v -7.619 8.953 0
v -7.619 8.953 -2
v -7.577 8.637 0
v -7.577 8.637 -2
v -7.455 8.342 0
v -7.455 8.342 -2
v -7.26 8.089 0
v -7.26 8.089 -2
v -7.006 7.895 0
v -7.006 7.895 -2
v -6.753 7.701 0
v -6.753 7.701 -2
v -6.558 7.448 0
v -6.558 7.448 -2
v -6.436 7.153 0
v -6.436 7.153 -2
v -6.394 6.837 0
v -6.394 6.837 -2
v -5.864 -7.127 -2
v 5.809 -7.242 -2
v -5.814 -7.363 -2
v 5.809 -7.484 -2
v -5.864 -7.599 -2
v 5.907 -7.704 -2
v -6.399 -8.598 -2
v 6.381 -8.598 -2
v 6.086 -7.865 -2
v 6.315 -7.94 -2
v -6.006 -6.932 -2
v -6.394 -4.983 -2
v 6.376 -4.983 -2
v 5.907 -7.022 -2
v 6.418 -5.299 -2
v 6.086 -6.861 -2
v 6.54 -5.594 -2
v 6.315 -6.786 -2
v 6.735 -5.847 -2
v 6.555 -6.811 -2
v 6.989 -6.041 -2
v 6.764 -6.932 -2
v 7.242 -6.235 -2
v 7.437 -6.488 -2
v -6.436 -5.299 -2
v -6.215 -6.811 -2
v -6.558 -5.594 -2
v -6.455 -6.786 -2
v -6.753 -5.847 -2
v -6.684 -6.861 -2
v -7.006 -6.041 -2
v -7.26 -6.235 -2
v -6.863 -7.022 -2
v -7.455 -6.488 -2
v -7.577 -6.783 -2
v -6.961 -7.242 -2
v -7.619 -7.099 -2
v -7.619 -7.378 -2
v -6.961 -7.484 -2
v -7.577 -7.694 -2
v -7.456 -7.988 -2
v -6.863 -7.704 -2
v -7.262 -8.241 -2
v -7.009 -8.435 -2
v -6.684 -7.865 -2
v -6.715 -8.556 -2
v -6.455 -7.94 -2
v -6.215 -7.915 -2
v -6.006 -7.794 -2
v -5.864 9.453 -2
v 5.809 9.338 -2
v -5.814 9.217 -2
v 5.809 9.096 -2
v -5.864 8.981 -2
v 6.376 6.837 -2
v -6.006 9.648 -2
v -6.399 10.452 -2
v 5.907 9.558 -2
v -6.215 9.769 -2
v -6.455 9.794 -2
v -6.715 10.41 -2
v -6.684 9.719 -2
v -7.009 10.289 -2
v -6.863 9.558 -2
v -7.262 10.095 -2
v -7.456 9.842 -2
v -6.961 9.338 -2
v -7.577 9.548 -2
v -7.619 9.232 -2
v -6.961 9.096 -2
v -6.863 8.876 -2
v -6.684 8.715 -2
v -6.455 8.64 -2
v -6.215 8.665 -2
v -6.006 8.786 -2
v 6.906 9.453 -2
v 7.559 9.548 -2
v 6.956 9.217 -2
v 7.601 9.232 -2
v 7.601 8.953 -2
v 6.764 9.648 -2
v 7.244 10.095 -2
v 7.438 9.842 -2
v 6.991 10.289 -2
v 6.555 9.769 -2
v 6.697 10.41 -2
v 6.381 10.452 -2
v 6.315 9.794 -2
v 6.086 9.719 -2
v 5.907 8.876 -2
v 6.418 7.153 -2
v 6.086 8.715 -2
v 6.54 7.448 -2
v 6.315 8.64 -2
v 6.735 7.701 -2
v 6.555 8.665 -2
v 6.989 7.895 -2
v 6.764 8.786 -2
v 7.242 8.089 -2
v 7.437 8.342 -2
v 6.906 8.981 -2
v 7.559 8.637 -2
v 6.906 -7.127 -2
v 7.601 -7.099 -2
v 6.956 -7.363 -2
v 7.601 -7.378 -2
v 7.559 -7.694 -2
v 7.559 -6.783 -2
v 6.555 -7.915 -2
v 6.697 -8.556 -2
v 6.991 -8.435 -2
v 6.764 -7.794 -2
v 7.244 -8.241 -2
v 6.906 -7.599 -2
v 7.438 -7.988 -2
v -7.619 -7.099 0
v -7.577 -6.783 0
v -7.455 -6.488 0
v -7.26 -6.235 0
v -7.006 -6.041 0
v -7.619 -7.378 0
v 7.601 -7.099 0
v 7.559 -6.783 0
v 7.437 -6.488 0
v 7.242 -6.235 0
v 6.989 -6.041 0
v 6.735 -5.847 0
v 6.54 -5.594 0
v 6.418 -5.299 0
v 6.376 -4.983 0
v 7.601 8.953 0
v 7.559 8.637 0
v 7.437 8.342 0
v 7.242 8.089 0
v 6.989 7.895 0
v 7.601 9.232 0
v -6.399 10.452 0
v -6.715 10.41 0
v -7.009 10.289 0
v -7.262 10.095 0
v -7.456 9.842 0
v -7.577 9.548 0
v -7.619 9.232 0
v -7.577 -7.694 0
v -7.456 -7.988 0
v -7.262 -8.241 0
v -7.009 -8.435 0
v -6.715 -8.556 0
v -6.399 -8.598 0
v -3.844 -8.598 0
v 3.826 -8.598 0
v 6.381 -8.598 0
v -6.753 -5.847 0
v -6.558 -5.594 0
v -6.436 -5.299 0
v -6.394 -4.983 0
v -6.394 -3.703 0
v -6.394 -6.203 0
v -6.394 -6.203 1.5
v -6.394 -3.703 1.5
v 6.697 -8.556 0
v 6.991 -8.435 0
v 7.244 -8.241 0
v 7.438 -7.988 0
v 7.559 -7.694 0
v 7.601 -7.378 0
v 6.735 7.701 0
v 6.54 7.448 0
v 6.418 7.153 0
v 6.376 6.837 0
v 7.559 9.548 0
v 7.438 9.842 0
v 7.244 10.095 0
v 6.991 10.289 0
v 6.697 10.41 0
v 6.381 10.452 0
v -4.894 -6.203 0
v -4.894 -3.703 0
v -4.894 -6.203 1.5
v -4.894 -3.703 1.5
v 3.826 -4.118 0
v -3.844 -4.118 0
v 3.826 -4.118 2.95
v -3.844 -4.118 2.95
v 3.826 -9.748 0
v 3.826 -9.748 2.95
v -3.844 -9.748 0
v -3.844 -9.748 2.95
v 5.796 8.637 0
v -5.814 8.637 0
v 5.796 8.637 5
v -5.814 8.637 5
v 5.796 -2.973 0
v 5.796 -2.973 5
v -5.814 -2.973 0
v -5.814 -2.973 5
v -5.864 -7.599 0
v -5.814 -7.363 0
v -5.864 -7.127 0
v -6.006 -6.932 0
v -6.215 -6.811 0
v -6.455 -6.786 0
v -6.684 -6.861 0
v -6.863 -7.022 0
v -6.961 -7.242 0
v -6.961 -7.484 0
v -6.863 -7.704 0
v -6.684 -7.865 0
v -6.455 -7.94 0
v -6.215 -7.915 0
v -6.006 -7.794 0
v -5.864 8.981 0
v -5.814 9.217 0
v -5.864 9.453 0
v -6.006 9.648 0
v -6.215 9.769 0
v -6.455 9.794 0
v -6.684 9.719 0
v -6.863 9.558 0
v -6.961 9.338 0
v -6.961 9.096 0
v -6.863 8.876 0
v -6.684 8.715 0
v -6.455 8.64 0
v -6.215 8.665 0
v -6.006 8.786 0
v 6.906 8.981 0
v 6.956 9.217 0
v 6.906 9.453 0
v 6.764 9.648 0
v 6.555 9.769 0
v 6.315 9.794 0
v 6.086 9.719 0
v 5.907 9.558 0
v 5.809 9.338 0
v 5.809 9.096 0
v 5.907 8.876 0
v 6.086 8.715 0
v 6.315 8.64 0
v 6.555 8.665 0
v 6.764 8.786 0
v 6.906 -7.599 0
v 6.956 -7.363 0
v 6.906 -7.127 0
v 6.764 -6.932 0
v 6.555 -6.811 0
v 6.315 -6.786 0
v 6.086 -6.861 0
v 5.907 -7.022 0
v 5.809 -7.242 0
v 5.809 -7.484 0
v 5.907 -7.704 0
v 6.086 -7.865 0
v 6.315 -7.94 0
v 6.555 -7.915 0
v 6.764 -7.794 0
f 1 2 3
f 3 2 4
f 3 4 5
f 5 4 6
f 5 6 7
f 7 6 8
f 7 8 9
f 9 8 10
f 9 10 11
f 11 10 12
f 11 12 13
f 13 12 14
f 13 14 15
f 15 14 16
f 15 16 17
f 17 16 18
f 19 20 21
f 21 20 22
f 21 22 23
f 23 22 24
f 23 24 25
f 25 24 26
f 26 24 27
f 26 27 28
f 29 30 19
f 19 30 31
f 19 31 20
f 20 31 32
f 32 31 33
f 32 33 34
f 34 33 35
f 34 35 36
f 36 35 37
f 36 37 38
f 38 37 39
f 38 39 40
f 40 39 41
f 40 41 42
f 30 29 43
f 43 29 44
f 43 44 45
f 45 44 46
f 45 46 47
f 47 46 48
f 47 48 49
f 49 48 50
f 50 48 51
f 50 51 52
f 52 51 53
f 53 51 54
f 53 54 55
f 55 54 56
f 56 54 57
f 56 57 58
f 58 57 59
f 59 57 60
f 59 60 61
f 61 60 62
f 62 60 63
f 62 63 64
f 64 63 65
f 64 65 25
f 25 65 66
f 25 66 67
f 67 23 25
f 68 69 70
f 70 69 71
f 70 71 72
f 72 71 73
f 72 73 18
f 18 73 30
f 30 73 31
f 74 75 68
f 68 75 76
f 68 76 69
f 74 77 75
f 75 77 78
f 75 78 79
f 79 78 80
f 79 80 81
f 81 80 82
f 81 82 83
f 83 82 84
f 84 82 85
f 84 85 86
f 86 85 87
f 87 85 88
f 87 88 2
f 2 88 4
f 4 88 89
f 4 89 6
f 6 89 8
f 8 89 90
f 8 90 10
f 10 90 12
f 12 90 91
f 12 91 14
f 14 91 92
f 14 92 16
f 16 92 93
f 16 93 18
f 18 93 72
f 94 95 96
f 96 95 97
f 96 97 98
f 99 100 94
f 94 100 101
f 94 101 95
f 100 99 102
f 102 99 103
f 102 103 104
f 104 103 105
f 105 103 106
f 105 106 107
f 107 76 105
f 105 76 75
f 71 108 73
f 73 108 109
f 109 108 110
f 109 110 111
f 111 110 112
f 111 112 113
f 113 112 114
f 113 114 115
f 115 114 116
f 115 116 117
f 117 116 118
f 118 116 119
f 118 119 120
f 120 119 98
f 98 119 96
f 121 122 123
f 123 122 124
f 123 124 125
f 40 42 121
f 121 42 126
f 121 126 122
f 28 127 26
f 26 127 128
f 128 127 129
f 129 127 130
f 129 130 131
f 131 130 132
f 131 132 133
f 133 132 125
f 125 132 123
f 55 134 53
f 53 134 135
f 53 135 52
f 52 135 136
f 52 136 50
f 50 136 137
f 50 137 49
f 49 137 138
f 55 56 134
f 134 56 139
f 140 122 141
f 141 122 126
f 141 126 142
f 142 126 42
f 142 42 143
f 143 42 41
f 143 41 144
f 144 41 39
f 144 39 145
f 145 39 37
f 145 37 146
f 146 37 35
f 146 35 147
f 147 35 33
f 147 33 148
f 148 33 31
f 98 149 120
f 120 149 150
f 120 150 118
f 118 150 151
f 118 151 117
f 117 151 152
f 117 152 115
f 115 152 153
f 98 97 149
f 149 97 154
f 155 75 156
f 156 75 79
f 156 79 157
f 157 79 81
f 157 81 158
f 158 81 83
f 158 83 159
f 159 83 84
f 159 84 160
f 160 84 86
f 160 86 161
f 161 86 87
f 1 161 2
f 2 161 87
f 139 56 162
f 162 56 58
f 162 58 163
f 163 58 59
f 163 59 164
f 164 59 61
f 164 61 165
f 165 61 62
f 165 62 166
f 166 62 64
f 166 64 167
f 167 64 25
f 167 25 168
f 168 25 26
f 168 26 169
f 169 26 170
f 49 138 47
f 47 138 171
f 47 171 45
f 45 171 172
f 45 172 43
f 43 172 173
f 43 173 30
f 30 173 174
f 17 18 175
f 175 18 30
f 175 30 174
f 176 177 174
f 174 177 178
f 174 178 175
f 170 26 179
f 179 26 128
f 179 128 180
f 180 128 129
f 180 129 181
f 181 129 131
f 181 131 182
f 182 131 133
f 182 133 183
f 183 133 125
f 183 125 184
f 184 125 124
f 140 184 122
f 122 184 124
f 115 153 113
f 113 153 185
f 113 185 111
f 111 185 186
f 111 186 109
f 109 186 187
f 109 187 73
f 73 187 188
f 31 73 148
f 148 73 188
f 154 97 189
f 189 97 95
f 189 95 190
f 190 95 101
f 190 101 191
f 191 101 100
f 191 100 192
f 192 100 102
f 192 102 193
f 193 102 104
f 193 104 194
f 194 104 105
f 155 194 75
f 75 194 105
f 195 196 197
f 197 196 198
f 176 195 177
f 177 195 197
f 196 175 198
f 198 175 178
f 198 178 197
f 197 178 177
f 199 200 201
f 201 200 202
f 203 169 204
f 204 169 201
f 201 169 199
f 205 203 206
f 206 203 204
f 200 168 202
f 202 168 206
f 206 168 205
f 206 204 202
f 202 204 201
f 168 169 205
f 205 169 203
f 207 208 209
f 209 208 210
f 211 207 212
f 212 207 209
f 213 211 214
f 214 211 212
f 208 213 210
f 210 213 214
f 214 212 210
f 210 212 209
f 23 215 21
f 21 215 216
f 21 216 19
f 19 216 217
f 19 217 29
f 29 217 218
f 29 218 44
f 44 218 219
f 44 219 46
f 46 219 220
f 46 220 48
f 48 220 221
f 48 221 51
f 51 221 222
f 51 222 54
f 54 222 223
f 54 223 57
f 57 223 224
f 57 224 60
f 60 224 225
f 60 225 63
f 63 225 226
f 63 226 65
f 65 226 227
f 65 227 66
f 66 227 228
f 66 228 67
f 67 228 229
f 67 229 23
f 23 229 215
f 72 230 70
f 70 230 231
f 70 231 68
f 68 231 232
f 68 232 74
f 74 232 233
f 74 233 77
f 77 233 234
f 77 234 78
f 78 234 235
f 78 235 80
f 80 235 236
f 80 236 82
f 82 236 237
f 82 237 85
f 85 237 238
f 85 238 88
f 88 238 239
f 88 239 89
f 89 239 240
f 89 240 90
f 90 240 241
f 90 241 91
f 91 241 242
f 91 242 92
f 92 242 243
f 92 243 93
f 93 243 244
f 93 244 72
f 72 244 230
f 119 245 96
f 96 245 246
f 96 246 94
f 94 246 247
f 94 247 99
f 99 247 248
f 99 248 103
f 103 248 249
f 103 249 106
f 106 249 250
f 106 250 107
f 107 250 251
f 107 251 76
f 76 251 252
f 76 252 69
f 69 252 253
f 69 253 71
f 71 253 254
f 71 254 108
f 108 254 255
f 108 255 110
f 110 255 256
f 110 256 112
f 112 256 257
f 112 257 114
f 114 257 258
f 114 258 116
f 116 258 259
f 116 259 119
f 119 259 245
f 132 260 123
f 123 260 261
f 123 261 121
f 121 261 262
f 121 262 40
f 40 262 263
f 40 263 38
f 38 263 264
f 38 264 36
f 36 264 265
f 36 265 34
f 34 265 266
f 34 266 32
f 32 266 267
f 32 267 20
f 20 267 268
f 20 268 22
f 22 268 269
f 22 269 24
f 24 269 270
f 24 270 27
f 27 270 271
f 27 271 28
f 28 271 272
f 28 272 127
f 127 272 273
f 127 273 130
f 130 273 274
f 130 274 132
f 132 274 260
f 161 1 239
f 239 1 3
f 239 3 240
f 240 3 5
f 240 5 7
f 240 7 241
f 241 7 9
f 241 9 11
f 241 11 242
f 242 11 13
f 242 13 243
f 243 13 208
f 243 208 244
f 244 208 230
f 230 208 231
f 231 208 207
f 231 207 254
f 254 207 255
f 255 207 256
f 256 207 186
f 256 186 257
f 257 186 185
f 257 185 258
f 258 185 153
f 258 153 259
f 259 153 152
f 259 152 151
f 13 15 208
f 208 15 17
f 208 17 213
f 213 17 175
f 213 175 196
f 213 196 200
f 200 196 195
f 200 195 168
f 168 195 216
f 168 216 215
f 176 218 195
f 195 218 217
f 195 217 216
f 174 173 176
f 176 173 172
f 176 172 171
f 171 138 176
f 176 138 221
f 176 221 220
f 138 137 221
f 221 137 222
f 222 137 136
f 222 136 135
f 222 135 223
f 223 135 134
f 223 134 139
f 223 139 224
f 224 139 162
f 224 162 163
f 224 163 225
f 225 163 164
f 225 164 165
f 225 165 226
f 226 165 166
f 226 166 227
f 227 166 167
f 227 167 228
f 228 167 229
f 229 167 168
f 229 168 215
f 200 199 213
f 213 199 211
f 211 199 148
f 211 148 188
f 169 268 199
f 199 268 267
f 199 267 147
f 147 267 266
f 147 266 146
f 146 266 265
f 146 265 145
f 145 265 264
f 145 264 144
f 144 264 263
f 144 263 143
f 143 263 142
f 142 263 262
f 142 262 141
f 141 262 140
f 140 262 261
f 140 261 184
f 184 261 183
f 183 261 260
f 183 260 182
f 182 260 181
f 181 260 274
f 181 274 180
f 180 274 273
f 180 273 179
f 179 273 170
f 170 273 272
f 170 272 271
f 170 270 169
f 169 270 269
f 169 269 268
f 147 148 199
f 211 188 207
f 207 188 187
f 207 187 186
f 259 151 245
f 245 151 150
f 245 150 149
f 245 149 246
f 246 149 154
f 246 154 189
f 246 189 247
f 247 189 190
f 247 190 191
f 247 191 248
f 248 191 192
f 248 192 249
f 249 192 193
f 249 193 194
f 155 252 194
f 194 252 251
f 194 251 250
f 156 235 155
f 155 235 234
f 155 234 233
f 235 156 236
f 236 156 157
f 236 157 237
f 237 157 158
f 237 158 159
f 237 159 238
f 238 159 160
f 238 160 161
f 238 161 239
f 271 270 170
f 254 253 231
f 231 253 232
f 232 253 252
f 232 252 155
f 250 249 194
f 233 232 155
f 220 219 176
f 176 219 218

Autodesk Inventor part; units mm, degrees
ref_plane "YZ Plane" through (0, 0, 0) normal (1, 0, 0) x (0, 1, 0)
ref_plane "XZ Plane" through (0, 0, 0) normal (0, 1, 0) x (-1, 0, 0)
ref_plane "XY Plane" through (0, 0, 0) normal (0, 0, 1) x (1, 0, 0)
sketch "Sketch1" plane through (0, 0, 0) normal (0, 0, 1) x (1, 0, 0)
  line L0 (-7.619, -8.598) -> (7.601, -8.598)
  line L1 (7.601, -8.598) -> (7.601, 10.452)
  line L2 (7.601, 10.452) -> (-7.619, 10.452)
  line L3 (-7.619, 10.452) -> (-7.619, -8.598)
  line L4 (-6.394, 9.217) -> (6.376, 9.217)
  line L5 (6.376, 9.217) -> (6.376, -7.363)
  line L6 (6.376, -7.363) -> (-6.394, -7.363)
  line L7 (-6.394, -7.363) -> (-6.394, 9.217)
  circle A0 centre (-6.394, 9.217) radius 0.58
  circle A1 centre (6.376, 9.217) radius 0.58
  circle A2 centre (6.376, -7.363) radius 0.58
  circle A3 centre (-6.394, -7.363) radius 0.58
  line L8 (-3.844, -9.748) -> (3.826, -9.748)
  line L9 (3.826, -9.748) -> (3.826, -8.598)
  line L10 (-3.844, -9.748) -> (-3.844, -8.598)
  line L11 (5.796, 8.637) -> (-5.814, 8.637)
  line L12 (-5.814, 8.637) -> (-5.814, -2.973)
  line L13 (-5.814, -2.973) -> (5.796, -2.973)
  line L14 (5.796, -2.973) -> (5.796, 8.637)
  line L15 (3.826, -9.748) -> (-3.844, -9.748)
  line L16 (-3.844, -9.748) -> (-3.844, -4.118)
  line L17 (-3.844, -4.118) -> (3.826, -4.118)
  line L18 (3.826, -4.118) -> (3.826, -9.748)
  line L19 (-6.394, -6.203) -> (-4.894, -6.203)
  line L20 (-4.894, -6.203) -> (-4.894, -3.703)
  line L21 (-4.894, -3.703) -> (-6.394, -3.703)
  line L22 (-6.394, -3.703) -> (-6.394, -6.203)
  line L23 (-7.619, 8.057) -> (-6.394, 8.057)
  line L24 (-6.394, 8.057) -> (-6.394, -6.783)
  line L25 (-7.619, -6.783) -> (-7.619, 8.057)
  line L26 (7.601, 8.637) -> (7.601, -6.783)
  line L27 (6.376, -6.783) -> (6.376, 8.637)
  line L28 (-6.394, 10.452) -> (-6.394, 9.797)
  line L29 (6.376, 10.452) -> (6.376, 9.797)
  line L30 (-7.619, -6.203) -> (-6.394, -6.203)
  line L31 (6.376, -6.203) -> (7.601, -6.203)
  line L32 (6.376, 8.057) -> (7.601, 8.057)
  point P0 (0, 0)
  point P1 (2.2173, 6.5337)
  point P2 (-0.009, -8.598)
  point P3 (-0.009, -9.748)
  point P4 (-6.394, -3.703)
  point P5 (-4.894, -4.953)
  point P6 (-5.644, -6.203)
  point P7 (-6.394, 8.057)
  point P8 (-7.0065, -6.783)
  point P9 (6.9885, 8.637)
  point P10 (-7.0065, -6.203)
  dimension "d16" = 1.16
  dimension "d17" = 1.16
  dimension "d0" = 15.22
  dimension "d1" = 19.05
  dimension "d14" = 12.77
  dimension "d15" = 16.58
  dimension "d18" = 1.16
  dimension "d19" = 1.16
  dimension "d23" = 1.235
  dimension "d24" = 1.225
  dimension "d47" = 1.15
  dimension "d55" = 5.63
  dimension "d60" = 1.5
  dimension "d61" = 2.5
  dimension "d64" = 2.395
  dimension "d67" = 2.395
extrude "Extrusion1" add sketch "Sketch1" against normal blind 2 contours L3 L30 L7 A3 L6 L16 L0 | L16 L6 L18 L0 | L18 L6 A2 L5 L31 L1 L0 | L16 L17 L18 L6 | L6 A3 L7 L19 L20 L21 A0 L4 A1 L5 A2 L18 L17 L16 | L3 L23 L7 L30 | L3 L2 L28 A0 L7 L23 | L7 L21 L20 L19 | L31 L5 L32 L1 | L2 L29 A1 L4 A0 L28 | L32 L5 A1 L29 L2 L1 | L14 L13 L12 L11
extrude "Extrusion6" add sketch "Sketch1" along normal blind 5 contours L14 L13 L12 L11
extrude "Extrusion7" add sketch "Sketch1" along normal blind 2.95 contours L16 L6 L18 L0 | L0 L9 L8 L10 | L16 L17 L18 L6
extrude "Extrusion8" add sketch "Sketch1" along normal blind 1.5 contours L7 L21 L20 L19
extrude "Extrusion10" cut sketch "Sketch1" against normal blind 2 contours L3 L23 L7 L30 | L31 L5 L32 L1
fillet "Fillet13" radius 1.22 12 edges at (7.601, 10.452, -1) (7.601, 8.057, -1) (6.376, 8.057, -1) (7.601, -6.203, -1) (6.376, -6.203, -1) (7.601, -8.598, -1) (-6.394, -6.203, -1) (-7.619, -6.203, -1) (-7.619, -8.598, -1) (-7.619, 10.452, -1) (-7.619, 8.057, -1) (-6.394, 8.057, -1)
properties part number "IR_cam"
